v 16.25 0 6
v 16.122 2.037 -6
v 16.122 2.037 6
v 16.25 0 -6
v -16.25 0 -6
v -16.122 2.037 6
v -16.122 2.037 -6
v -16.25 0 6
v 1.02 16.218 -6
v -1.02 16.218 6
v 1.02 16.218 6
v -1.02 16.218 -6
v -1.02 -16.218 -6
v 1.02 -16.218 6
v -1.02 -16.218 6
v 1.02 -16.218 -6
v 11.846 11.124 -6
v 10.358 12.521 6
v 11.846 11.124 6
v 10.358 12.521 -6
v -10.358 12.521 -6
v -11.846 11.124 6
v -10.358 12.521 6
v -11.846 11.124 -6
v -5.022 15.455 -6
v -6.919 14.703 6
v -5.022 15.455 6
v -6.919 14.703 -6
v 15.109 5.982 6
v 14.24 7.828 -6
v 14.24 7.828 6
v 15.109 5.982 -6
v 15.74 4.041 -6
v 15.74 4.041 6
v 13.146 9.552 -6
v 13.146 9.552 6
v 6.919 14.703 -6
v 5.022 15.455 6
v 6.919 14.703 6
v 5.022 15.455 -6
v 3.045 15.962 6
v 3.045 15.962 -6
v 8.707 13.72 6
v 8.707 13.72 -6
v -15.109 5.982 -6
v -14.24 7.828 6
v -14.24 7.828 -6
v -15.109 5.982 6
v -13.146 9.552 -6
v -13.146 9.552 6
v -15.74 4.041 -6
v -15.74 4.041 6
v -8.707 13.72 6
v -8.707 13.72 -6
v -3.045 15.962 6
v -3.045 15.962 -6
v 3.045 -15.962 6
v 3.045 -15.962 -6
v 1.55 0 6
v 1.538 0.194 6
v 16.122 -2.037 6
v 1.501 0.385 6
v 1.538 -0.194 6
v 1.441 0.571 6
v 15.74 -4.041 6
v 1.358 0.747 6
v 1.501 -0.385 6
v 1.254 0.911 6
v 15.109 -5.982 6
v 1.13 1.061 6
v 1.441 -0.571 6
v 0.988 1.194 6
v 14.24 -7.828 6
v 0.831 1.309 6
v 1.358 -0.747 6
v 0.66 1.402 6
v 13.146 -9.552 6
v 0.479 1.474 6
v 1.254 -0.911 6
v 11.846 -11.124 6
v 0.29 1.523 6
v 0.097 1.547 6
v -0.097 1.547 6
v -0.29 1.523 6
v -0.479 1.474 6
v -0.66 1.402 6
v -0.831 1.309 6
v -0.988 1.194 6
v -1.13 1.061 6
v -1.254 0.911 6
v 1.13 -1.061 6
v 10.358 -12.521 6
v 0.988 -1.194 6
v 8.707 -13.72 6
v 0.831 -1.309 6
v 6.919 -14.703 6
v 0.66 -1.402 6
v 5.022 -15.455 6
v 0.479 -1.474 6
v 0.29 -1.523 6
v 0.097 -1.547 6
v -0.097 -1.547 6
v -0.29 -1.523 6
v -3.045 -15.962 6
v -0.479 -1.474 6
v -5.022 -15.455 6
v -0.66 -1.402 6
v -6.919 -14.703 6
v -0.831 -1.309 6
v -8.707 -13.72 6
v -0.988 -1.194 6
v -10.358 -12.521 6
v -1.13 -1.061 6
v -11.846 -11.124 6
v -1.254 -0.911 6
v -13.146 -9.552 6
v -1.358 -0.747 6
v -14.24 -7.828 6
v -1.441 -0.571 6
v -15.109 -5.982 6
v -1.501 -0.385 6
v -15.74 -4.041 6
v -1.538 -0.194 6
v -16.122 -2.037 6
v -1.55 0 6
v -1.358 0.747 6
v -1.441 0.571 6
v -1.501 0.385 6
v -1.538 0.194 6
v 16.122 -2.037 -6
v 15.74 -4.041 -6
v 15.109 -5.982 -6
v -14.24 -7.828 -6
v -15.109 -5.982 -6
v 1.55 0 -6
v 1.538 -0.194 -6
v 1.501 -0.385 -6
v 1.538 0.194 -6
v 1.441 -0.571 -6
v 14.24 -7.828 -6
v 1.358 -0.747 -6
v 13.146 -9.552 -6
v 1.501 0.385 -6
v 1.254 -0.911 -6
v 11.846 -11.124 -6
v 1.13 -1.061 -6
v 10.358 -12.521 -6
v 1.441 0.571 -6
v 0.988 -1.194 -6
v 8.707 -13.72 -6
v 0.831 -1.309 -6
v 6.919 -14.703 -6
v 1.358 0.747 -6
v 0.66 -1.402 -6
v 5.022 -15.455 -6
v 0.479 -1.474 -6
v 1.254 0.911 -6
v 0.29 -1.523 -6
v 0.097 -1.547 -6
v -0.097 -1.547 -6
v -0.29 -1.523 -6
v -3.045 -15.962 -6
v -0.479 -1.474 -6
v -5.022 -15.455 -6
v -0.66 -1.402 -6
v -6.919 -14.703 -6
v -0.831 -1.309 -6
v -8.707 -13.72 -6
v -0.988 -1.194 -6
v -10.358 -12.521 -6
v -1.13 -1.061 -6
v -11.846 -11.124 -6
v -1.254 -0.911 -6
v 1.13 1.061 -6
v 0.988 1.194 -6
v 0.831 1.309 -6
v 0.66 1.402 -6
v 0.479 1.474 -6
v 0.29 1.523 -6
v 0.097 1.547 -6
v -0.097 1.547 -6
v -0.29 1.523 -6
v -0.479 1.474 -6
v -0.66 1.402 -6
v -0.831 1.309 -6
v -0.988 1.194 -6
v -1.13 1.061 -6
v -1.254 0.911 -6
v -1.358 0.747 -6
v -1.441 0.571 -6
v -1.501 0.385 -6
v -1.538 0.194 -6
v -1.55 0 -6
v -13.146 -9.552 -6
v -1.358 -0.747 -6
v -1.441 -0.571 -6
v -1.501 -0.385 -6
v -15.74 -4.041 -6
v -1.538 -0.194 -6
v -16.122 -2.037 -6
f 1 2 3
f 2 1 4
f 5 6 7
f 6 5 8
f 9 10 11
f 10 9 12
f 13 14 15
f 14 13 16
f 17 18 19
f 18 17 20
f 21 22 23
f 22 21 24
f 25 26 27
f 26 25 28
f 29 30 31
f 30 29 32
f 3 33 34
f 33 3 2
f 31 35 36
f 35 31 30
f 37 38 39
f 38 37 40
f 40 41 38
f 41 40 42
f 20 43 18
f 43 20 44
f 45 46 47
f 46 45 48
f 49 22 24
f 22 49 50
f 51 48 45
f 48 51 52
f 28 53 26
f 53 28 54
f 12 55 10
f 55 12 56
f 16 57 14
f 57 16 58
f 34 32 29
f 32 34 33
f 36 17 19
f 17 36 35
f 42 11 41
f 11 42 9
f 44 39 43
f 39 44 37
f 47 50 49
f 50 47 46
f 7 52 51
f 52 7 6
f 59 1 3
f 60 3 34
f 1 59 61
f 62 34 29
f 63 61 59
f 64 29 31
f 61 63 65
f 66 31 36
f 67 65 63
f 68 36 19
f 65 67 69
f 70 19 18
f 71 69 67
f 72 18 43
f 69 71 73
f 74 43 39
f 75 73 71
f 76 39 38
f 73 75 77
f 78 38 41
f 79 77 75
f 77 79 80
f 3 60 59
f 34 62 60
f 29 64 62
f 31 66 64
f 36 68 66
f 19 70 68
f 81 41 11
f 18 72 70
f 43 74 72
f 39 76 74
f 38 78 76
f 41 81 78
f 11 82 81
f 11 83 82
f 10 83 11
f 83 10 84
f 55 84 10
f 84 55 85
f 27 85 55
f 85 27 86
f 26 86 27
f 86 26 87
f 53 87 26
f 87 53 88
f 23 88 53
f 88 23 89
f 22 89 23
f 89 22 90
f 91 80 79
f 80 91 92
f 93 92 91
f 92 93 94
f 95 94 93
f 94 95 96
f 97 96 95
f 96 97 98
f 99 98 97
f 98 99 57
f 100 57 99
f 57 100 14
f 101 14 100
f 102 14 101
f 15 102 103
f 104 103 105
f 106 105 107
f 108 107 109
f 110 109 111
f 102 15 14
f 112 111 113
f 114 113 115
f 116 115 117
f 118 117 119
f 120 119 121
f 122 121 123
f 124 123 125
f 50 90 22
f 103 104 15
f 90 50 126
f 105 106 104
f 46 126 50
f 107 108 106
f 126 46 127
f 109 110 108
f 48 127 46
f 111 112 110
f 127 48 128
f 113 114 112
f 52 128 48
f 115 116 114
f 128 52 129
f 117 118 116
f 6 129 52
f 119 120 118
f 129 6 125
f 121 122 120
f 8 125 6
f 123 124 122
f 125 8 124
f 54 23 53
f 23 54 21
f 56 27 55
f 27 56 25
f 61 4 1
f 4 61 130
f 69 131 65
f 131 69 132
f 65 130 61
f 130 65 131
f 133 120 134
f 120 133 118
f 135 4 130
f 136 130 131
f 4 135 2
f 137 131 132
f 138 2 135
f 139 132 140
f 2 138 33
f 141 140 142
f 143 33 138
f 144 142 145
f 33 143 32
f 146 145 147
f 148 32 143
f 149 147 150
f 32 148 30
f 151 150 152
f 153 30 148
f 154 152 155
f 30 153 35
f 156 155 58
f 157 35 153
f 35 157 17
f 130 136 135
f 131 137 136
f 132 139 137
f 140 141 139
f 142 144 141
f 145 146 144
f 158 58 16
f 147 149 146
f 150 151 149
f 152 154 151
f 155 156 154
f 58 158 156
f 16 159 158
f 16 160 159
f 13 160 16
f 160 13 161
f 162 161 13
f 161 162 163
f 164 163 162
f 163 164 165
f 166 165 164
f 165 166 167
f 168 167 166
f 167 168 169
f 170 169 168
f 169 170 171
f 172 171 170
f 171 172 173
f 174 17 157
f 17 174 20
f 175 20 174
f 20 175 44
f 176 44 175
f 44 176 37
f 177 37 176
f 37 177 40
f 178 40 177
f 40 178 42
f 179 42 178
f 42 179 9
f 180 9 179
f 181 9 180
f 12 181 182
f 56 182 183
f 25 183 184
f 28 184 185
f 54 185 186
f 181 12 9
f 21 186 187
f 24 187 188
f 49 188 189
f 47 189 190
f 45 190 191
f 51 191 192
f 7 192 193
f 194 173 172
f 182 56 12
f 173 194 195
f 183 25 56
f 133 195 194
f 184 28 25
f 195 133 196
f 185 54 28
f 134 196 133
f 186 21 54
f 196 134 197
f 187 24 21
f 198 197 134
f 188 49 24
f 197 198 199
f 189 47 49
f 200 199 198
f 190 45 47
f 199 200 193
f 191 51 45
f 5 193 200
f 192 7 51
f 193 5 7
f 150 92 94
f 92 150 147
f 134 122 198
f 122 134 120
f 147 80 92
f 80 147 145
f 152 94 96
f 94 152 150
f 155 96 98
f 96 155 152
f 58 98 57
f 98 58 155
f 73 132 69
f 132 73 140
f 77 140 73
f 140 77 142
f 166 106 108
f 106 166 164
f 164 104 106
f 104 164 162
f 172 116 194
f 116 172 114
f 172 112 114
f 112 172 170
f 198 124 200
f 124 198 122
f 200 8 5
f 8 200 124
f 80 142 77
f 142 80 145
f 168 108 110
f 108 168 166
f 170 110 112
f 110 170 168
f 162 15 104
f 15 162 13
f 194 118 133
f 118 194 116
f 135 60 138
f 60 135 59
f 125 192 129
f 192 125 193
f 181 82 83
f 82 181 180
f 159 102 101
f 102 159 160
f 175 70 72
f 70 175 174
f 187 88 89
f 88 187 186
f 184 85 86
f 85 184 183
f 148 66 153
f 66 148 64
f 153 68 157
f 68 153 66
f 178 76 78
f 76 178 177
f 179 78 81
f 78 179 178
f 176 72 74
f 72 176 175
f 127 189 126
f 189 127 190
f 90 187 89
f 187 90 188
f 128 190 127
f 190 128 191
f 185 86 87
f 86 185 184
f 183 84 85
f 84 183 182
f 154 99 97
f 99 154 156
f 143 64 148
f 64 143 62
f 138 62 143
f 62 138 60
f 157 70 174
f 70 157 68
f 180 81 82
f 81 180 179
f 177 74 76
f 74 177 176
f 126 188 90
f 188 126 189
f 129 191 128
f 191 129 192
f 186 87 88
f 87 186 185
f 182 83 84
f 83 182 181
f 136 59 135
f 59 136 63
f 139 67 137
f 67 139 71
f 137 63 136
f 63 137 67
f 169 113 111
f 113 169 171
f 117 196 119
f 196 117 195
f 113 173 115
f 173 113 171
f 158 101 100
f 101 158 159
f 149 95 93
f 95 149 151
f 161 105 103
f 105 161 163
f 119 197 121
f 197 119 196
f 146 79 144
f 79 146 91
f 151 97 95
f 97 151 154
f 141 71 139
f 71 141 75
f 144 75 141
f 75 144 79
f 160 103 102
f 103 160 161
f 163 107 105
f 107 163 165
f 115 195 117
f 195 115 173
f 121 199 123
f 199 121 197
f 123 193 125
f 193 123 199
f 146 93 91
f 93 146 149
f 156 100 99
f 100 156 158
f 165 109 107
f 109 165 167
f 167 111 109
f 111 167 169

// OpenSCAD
$fn = 50;


difference() {
	union() {
		translate(v = [0, 0, -6.0000000000]) {
			cylinder(h = 12, r = 16.2500000000);
		}
	}
	union() {
		translate(v = [0, 0, -100.0000000000]) {
			cylinder(h = 200, r = 1.5500000000);
		}
	}
}
